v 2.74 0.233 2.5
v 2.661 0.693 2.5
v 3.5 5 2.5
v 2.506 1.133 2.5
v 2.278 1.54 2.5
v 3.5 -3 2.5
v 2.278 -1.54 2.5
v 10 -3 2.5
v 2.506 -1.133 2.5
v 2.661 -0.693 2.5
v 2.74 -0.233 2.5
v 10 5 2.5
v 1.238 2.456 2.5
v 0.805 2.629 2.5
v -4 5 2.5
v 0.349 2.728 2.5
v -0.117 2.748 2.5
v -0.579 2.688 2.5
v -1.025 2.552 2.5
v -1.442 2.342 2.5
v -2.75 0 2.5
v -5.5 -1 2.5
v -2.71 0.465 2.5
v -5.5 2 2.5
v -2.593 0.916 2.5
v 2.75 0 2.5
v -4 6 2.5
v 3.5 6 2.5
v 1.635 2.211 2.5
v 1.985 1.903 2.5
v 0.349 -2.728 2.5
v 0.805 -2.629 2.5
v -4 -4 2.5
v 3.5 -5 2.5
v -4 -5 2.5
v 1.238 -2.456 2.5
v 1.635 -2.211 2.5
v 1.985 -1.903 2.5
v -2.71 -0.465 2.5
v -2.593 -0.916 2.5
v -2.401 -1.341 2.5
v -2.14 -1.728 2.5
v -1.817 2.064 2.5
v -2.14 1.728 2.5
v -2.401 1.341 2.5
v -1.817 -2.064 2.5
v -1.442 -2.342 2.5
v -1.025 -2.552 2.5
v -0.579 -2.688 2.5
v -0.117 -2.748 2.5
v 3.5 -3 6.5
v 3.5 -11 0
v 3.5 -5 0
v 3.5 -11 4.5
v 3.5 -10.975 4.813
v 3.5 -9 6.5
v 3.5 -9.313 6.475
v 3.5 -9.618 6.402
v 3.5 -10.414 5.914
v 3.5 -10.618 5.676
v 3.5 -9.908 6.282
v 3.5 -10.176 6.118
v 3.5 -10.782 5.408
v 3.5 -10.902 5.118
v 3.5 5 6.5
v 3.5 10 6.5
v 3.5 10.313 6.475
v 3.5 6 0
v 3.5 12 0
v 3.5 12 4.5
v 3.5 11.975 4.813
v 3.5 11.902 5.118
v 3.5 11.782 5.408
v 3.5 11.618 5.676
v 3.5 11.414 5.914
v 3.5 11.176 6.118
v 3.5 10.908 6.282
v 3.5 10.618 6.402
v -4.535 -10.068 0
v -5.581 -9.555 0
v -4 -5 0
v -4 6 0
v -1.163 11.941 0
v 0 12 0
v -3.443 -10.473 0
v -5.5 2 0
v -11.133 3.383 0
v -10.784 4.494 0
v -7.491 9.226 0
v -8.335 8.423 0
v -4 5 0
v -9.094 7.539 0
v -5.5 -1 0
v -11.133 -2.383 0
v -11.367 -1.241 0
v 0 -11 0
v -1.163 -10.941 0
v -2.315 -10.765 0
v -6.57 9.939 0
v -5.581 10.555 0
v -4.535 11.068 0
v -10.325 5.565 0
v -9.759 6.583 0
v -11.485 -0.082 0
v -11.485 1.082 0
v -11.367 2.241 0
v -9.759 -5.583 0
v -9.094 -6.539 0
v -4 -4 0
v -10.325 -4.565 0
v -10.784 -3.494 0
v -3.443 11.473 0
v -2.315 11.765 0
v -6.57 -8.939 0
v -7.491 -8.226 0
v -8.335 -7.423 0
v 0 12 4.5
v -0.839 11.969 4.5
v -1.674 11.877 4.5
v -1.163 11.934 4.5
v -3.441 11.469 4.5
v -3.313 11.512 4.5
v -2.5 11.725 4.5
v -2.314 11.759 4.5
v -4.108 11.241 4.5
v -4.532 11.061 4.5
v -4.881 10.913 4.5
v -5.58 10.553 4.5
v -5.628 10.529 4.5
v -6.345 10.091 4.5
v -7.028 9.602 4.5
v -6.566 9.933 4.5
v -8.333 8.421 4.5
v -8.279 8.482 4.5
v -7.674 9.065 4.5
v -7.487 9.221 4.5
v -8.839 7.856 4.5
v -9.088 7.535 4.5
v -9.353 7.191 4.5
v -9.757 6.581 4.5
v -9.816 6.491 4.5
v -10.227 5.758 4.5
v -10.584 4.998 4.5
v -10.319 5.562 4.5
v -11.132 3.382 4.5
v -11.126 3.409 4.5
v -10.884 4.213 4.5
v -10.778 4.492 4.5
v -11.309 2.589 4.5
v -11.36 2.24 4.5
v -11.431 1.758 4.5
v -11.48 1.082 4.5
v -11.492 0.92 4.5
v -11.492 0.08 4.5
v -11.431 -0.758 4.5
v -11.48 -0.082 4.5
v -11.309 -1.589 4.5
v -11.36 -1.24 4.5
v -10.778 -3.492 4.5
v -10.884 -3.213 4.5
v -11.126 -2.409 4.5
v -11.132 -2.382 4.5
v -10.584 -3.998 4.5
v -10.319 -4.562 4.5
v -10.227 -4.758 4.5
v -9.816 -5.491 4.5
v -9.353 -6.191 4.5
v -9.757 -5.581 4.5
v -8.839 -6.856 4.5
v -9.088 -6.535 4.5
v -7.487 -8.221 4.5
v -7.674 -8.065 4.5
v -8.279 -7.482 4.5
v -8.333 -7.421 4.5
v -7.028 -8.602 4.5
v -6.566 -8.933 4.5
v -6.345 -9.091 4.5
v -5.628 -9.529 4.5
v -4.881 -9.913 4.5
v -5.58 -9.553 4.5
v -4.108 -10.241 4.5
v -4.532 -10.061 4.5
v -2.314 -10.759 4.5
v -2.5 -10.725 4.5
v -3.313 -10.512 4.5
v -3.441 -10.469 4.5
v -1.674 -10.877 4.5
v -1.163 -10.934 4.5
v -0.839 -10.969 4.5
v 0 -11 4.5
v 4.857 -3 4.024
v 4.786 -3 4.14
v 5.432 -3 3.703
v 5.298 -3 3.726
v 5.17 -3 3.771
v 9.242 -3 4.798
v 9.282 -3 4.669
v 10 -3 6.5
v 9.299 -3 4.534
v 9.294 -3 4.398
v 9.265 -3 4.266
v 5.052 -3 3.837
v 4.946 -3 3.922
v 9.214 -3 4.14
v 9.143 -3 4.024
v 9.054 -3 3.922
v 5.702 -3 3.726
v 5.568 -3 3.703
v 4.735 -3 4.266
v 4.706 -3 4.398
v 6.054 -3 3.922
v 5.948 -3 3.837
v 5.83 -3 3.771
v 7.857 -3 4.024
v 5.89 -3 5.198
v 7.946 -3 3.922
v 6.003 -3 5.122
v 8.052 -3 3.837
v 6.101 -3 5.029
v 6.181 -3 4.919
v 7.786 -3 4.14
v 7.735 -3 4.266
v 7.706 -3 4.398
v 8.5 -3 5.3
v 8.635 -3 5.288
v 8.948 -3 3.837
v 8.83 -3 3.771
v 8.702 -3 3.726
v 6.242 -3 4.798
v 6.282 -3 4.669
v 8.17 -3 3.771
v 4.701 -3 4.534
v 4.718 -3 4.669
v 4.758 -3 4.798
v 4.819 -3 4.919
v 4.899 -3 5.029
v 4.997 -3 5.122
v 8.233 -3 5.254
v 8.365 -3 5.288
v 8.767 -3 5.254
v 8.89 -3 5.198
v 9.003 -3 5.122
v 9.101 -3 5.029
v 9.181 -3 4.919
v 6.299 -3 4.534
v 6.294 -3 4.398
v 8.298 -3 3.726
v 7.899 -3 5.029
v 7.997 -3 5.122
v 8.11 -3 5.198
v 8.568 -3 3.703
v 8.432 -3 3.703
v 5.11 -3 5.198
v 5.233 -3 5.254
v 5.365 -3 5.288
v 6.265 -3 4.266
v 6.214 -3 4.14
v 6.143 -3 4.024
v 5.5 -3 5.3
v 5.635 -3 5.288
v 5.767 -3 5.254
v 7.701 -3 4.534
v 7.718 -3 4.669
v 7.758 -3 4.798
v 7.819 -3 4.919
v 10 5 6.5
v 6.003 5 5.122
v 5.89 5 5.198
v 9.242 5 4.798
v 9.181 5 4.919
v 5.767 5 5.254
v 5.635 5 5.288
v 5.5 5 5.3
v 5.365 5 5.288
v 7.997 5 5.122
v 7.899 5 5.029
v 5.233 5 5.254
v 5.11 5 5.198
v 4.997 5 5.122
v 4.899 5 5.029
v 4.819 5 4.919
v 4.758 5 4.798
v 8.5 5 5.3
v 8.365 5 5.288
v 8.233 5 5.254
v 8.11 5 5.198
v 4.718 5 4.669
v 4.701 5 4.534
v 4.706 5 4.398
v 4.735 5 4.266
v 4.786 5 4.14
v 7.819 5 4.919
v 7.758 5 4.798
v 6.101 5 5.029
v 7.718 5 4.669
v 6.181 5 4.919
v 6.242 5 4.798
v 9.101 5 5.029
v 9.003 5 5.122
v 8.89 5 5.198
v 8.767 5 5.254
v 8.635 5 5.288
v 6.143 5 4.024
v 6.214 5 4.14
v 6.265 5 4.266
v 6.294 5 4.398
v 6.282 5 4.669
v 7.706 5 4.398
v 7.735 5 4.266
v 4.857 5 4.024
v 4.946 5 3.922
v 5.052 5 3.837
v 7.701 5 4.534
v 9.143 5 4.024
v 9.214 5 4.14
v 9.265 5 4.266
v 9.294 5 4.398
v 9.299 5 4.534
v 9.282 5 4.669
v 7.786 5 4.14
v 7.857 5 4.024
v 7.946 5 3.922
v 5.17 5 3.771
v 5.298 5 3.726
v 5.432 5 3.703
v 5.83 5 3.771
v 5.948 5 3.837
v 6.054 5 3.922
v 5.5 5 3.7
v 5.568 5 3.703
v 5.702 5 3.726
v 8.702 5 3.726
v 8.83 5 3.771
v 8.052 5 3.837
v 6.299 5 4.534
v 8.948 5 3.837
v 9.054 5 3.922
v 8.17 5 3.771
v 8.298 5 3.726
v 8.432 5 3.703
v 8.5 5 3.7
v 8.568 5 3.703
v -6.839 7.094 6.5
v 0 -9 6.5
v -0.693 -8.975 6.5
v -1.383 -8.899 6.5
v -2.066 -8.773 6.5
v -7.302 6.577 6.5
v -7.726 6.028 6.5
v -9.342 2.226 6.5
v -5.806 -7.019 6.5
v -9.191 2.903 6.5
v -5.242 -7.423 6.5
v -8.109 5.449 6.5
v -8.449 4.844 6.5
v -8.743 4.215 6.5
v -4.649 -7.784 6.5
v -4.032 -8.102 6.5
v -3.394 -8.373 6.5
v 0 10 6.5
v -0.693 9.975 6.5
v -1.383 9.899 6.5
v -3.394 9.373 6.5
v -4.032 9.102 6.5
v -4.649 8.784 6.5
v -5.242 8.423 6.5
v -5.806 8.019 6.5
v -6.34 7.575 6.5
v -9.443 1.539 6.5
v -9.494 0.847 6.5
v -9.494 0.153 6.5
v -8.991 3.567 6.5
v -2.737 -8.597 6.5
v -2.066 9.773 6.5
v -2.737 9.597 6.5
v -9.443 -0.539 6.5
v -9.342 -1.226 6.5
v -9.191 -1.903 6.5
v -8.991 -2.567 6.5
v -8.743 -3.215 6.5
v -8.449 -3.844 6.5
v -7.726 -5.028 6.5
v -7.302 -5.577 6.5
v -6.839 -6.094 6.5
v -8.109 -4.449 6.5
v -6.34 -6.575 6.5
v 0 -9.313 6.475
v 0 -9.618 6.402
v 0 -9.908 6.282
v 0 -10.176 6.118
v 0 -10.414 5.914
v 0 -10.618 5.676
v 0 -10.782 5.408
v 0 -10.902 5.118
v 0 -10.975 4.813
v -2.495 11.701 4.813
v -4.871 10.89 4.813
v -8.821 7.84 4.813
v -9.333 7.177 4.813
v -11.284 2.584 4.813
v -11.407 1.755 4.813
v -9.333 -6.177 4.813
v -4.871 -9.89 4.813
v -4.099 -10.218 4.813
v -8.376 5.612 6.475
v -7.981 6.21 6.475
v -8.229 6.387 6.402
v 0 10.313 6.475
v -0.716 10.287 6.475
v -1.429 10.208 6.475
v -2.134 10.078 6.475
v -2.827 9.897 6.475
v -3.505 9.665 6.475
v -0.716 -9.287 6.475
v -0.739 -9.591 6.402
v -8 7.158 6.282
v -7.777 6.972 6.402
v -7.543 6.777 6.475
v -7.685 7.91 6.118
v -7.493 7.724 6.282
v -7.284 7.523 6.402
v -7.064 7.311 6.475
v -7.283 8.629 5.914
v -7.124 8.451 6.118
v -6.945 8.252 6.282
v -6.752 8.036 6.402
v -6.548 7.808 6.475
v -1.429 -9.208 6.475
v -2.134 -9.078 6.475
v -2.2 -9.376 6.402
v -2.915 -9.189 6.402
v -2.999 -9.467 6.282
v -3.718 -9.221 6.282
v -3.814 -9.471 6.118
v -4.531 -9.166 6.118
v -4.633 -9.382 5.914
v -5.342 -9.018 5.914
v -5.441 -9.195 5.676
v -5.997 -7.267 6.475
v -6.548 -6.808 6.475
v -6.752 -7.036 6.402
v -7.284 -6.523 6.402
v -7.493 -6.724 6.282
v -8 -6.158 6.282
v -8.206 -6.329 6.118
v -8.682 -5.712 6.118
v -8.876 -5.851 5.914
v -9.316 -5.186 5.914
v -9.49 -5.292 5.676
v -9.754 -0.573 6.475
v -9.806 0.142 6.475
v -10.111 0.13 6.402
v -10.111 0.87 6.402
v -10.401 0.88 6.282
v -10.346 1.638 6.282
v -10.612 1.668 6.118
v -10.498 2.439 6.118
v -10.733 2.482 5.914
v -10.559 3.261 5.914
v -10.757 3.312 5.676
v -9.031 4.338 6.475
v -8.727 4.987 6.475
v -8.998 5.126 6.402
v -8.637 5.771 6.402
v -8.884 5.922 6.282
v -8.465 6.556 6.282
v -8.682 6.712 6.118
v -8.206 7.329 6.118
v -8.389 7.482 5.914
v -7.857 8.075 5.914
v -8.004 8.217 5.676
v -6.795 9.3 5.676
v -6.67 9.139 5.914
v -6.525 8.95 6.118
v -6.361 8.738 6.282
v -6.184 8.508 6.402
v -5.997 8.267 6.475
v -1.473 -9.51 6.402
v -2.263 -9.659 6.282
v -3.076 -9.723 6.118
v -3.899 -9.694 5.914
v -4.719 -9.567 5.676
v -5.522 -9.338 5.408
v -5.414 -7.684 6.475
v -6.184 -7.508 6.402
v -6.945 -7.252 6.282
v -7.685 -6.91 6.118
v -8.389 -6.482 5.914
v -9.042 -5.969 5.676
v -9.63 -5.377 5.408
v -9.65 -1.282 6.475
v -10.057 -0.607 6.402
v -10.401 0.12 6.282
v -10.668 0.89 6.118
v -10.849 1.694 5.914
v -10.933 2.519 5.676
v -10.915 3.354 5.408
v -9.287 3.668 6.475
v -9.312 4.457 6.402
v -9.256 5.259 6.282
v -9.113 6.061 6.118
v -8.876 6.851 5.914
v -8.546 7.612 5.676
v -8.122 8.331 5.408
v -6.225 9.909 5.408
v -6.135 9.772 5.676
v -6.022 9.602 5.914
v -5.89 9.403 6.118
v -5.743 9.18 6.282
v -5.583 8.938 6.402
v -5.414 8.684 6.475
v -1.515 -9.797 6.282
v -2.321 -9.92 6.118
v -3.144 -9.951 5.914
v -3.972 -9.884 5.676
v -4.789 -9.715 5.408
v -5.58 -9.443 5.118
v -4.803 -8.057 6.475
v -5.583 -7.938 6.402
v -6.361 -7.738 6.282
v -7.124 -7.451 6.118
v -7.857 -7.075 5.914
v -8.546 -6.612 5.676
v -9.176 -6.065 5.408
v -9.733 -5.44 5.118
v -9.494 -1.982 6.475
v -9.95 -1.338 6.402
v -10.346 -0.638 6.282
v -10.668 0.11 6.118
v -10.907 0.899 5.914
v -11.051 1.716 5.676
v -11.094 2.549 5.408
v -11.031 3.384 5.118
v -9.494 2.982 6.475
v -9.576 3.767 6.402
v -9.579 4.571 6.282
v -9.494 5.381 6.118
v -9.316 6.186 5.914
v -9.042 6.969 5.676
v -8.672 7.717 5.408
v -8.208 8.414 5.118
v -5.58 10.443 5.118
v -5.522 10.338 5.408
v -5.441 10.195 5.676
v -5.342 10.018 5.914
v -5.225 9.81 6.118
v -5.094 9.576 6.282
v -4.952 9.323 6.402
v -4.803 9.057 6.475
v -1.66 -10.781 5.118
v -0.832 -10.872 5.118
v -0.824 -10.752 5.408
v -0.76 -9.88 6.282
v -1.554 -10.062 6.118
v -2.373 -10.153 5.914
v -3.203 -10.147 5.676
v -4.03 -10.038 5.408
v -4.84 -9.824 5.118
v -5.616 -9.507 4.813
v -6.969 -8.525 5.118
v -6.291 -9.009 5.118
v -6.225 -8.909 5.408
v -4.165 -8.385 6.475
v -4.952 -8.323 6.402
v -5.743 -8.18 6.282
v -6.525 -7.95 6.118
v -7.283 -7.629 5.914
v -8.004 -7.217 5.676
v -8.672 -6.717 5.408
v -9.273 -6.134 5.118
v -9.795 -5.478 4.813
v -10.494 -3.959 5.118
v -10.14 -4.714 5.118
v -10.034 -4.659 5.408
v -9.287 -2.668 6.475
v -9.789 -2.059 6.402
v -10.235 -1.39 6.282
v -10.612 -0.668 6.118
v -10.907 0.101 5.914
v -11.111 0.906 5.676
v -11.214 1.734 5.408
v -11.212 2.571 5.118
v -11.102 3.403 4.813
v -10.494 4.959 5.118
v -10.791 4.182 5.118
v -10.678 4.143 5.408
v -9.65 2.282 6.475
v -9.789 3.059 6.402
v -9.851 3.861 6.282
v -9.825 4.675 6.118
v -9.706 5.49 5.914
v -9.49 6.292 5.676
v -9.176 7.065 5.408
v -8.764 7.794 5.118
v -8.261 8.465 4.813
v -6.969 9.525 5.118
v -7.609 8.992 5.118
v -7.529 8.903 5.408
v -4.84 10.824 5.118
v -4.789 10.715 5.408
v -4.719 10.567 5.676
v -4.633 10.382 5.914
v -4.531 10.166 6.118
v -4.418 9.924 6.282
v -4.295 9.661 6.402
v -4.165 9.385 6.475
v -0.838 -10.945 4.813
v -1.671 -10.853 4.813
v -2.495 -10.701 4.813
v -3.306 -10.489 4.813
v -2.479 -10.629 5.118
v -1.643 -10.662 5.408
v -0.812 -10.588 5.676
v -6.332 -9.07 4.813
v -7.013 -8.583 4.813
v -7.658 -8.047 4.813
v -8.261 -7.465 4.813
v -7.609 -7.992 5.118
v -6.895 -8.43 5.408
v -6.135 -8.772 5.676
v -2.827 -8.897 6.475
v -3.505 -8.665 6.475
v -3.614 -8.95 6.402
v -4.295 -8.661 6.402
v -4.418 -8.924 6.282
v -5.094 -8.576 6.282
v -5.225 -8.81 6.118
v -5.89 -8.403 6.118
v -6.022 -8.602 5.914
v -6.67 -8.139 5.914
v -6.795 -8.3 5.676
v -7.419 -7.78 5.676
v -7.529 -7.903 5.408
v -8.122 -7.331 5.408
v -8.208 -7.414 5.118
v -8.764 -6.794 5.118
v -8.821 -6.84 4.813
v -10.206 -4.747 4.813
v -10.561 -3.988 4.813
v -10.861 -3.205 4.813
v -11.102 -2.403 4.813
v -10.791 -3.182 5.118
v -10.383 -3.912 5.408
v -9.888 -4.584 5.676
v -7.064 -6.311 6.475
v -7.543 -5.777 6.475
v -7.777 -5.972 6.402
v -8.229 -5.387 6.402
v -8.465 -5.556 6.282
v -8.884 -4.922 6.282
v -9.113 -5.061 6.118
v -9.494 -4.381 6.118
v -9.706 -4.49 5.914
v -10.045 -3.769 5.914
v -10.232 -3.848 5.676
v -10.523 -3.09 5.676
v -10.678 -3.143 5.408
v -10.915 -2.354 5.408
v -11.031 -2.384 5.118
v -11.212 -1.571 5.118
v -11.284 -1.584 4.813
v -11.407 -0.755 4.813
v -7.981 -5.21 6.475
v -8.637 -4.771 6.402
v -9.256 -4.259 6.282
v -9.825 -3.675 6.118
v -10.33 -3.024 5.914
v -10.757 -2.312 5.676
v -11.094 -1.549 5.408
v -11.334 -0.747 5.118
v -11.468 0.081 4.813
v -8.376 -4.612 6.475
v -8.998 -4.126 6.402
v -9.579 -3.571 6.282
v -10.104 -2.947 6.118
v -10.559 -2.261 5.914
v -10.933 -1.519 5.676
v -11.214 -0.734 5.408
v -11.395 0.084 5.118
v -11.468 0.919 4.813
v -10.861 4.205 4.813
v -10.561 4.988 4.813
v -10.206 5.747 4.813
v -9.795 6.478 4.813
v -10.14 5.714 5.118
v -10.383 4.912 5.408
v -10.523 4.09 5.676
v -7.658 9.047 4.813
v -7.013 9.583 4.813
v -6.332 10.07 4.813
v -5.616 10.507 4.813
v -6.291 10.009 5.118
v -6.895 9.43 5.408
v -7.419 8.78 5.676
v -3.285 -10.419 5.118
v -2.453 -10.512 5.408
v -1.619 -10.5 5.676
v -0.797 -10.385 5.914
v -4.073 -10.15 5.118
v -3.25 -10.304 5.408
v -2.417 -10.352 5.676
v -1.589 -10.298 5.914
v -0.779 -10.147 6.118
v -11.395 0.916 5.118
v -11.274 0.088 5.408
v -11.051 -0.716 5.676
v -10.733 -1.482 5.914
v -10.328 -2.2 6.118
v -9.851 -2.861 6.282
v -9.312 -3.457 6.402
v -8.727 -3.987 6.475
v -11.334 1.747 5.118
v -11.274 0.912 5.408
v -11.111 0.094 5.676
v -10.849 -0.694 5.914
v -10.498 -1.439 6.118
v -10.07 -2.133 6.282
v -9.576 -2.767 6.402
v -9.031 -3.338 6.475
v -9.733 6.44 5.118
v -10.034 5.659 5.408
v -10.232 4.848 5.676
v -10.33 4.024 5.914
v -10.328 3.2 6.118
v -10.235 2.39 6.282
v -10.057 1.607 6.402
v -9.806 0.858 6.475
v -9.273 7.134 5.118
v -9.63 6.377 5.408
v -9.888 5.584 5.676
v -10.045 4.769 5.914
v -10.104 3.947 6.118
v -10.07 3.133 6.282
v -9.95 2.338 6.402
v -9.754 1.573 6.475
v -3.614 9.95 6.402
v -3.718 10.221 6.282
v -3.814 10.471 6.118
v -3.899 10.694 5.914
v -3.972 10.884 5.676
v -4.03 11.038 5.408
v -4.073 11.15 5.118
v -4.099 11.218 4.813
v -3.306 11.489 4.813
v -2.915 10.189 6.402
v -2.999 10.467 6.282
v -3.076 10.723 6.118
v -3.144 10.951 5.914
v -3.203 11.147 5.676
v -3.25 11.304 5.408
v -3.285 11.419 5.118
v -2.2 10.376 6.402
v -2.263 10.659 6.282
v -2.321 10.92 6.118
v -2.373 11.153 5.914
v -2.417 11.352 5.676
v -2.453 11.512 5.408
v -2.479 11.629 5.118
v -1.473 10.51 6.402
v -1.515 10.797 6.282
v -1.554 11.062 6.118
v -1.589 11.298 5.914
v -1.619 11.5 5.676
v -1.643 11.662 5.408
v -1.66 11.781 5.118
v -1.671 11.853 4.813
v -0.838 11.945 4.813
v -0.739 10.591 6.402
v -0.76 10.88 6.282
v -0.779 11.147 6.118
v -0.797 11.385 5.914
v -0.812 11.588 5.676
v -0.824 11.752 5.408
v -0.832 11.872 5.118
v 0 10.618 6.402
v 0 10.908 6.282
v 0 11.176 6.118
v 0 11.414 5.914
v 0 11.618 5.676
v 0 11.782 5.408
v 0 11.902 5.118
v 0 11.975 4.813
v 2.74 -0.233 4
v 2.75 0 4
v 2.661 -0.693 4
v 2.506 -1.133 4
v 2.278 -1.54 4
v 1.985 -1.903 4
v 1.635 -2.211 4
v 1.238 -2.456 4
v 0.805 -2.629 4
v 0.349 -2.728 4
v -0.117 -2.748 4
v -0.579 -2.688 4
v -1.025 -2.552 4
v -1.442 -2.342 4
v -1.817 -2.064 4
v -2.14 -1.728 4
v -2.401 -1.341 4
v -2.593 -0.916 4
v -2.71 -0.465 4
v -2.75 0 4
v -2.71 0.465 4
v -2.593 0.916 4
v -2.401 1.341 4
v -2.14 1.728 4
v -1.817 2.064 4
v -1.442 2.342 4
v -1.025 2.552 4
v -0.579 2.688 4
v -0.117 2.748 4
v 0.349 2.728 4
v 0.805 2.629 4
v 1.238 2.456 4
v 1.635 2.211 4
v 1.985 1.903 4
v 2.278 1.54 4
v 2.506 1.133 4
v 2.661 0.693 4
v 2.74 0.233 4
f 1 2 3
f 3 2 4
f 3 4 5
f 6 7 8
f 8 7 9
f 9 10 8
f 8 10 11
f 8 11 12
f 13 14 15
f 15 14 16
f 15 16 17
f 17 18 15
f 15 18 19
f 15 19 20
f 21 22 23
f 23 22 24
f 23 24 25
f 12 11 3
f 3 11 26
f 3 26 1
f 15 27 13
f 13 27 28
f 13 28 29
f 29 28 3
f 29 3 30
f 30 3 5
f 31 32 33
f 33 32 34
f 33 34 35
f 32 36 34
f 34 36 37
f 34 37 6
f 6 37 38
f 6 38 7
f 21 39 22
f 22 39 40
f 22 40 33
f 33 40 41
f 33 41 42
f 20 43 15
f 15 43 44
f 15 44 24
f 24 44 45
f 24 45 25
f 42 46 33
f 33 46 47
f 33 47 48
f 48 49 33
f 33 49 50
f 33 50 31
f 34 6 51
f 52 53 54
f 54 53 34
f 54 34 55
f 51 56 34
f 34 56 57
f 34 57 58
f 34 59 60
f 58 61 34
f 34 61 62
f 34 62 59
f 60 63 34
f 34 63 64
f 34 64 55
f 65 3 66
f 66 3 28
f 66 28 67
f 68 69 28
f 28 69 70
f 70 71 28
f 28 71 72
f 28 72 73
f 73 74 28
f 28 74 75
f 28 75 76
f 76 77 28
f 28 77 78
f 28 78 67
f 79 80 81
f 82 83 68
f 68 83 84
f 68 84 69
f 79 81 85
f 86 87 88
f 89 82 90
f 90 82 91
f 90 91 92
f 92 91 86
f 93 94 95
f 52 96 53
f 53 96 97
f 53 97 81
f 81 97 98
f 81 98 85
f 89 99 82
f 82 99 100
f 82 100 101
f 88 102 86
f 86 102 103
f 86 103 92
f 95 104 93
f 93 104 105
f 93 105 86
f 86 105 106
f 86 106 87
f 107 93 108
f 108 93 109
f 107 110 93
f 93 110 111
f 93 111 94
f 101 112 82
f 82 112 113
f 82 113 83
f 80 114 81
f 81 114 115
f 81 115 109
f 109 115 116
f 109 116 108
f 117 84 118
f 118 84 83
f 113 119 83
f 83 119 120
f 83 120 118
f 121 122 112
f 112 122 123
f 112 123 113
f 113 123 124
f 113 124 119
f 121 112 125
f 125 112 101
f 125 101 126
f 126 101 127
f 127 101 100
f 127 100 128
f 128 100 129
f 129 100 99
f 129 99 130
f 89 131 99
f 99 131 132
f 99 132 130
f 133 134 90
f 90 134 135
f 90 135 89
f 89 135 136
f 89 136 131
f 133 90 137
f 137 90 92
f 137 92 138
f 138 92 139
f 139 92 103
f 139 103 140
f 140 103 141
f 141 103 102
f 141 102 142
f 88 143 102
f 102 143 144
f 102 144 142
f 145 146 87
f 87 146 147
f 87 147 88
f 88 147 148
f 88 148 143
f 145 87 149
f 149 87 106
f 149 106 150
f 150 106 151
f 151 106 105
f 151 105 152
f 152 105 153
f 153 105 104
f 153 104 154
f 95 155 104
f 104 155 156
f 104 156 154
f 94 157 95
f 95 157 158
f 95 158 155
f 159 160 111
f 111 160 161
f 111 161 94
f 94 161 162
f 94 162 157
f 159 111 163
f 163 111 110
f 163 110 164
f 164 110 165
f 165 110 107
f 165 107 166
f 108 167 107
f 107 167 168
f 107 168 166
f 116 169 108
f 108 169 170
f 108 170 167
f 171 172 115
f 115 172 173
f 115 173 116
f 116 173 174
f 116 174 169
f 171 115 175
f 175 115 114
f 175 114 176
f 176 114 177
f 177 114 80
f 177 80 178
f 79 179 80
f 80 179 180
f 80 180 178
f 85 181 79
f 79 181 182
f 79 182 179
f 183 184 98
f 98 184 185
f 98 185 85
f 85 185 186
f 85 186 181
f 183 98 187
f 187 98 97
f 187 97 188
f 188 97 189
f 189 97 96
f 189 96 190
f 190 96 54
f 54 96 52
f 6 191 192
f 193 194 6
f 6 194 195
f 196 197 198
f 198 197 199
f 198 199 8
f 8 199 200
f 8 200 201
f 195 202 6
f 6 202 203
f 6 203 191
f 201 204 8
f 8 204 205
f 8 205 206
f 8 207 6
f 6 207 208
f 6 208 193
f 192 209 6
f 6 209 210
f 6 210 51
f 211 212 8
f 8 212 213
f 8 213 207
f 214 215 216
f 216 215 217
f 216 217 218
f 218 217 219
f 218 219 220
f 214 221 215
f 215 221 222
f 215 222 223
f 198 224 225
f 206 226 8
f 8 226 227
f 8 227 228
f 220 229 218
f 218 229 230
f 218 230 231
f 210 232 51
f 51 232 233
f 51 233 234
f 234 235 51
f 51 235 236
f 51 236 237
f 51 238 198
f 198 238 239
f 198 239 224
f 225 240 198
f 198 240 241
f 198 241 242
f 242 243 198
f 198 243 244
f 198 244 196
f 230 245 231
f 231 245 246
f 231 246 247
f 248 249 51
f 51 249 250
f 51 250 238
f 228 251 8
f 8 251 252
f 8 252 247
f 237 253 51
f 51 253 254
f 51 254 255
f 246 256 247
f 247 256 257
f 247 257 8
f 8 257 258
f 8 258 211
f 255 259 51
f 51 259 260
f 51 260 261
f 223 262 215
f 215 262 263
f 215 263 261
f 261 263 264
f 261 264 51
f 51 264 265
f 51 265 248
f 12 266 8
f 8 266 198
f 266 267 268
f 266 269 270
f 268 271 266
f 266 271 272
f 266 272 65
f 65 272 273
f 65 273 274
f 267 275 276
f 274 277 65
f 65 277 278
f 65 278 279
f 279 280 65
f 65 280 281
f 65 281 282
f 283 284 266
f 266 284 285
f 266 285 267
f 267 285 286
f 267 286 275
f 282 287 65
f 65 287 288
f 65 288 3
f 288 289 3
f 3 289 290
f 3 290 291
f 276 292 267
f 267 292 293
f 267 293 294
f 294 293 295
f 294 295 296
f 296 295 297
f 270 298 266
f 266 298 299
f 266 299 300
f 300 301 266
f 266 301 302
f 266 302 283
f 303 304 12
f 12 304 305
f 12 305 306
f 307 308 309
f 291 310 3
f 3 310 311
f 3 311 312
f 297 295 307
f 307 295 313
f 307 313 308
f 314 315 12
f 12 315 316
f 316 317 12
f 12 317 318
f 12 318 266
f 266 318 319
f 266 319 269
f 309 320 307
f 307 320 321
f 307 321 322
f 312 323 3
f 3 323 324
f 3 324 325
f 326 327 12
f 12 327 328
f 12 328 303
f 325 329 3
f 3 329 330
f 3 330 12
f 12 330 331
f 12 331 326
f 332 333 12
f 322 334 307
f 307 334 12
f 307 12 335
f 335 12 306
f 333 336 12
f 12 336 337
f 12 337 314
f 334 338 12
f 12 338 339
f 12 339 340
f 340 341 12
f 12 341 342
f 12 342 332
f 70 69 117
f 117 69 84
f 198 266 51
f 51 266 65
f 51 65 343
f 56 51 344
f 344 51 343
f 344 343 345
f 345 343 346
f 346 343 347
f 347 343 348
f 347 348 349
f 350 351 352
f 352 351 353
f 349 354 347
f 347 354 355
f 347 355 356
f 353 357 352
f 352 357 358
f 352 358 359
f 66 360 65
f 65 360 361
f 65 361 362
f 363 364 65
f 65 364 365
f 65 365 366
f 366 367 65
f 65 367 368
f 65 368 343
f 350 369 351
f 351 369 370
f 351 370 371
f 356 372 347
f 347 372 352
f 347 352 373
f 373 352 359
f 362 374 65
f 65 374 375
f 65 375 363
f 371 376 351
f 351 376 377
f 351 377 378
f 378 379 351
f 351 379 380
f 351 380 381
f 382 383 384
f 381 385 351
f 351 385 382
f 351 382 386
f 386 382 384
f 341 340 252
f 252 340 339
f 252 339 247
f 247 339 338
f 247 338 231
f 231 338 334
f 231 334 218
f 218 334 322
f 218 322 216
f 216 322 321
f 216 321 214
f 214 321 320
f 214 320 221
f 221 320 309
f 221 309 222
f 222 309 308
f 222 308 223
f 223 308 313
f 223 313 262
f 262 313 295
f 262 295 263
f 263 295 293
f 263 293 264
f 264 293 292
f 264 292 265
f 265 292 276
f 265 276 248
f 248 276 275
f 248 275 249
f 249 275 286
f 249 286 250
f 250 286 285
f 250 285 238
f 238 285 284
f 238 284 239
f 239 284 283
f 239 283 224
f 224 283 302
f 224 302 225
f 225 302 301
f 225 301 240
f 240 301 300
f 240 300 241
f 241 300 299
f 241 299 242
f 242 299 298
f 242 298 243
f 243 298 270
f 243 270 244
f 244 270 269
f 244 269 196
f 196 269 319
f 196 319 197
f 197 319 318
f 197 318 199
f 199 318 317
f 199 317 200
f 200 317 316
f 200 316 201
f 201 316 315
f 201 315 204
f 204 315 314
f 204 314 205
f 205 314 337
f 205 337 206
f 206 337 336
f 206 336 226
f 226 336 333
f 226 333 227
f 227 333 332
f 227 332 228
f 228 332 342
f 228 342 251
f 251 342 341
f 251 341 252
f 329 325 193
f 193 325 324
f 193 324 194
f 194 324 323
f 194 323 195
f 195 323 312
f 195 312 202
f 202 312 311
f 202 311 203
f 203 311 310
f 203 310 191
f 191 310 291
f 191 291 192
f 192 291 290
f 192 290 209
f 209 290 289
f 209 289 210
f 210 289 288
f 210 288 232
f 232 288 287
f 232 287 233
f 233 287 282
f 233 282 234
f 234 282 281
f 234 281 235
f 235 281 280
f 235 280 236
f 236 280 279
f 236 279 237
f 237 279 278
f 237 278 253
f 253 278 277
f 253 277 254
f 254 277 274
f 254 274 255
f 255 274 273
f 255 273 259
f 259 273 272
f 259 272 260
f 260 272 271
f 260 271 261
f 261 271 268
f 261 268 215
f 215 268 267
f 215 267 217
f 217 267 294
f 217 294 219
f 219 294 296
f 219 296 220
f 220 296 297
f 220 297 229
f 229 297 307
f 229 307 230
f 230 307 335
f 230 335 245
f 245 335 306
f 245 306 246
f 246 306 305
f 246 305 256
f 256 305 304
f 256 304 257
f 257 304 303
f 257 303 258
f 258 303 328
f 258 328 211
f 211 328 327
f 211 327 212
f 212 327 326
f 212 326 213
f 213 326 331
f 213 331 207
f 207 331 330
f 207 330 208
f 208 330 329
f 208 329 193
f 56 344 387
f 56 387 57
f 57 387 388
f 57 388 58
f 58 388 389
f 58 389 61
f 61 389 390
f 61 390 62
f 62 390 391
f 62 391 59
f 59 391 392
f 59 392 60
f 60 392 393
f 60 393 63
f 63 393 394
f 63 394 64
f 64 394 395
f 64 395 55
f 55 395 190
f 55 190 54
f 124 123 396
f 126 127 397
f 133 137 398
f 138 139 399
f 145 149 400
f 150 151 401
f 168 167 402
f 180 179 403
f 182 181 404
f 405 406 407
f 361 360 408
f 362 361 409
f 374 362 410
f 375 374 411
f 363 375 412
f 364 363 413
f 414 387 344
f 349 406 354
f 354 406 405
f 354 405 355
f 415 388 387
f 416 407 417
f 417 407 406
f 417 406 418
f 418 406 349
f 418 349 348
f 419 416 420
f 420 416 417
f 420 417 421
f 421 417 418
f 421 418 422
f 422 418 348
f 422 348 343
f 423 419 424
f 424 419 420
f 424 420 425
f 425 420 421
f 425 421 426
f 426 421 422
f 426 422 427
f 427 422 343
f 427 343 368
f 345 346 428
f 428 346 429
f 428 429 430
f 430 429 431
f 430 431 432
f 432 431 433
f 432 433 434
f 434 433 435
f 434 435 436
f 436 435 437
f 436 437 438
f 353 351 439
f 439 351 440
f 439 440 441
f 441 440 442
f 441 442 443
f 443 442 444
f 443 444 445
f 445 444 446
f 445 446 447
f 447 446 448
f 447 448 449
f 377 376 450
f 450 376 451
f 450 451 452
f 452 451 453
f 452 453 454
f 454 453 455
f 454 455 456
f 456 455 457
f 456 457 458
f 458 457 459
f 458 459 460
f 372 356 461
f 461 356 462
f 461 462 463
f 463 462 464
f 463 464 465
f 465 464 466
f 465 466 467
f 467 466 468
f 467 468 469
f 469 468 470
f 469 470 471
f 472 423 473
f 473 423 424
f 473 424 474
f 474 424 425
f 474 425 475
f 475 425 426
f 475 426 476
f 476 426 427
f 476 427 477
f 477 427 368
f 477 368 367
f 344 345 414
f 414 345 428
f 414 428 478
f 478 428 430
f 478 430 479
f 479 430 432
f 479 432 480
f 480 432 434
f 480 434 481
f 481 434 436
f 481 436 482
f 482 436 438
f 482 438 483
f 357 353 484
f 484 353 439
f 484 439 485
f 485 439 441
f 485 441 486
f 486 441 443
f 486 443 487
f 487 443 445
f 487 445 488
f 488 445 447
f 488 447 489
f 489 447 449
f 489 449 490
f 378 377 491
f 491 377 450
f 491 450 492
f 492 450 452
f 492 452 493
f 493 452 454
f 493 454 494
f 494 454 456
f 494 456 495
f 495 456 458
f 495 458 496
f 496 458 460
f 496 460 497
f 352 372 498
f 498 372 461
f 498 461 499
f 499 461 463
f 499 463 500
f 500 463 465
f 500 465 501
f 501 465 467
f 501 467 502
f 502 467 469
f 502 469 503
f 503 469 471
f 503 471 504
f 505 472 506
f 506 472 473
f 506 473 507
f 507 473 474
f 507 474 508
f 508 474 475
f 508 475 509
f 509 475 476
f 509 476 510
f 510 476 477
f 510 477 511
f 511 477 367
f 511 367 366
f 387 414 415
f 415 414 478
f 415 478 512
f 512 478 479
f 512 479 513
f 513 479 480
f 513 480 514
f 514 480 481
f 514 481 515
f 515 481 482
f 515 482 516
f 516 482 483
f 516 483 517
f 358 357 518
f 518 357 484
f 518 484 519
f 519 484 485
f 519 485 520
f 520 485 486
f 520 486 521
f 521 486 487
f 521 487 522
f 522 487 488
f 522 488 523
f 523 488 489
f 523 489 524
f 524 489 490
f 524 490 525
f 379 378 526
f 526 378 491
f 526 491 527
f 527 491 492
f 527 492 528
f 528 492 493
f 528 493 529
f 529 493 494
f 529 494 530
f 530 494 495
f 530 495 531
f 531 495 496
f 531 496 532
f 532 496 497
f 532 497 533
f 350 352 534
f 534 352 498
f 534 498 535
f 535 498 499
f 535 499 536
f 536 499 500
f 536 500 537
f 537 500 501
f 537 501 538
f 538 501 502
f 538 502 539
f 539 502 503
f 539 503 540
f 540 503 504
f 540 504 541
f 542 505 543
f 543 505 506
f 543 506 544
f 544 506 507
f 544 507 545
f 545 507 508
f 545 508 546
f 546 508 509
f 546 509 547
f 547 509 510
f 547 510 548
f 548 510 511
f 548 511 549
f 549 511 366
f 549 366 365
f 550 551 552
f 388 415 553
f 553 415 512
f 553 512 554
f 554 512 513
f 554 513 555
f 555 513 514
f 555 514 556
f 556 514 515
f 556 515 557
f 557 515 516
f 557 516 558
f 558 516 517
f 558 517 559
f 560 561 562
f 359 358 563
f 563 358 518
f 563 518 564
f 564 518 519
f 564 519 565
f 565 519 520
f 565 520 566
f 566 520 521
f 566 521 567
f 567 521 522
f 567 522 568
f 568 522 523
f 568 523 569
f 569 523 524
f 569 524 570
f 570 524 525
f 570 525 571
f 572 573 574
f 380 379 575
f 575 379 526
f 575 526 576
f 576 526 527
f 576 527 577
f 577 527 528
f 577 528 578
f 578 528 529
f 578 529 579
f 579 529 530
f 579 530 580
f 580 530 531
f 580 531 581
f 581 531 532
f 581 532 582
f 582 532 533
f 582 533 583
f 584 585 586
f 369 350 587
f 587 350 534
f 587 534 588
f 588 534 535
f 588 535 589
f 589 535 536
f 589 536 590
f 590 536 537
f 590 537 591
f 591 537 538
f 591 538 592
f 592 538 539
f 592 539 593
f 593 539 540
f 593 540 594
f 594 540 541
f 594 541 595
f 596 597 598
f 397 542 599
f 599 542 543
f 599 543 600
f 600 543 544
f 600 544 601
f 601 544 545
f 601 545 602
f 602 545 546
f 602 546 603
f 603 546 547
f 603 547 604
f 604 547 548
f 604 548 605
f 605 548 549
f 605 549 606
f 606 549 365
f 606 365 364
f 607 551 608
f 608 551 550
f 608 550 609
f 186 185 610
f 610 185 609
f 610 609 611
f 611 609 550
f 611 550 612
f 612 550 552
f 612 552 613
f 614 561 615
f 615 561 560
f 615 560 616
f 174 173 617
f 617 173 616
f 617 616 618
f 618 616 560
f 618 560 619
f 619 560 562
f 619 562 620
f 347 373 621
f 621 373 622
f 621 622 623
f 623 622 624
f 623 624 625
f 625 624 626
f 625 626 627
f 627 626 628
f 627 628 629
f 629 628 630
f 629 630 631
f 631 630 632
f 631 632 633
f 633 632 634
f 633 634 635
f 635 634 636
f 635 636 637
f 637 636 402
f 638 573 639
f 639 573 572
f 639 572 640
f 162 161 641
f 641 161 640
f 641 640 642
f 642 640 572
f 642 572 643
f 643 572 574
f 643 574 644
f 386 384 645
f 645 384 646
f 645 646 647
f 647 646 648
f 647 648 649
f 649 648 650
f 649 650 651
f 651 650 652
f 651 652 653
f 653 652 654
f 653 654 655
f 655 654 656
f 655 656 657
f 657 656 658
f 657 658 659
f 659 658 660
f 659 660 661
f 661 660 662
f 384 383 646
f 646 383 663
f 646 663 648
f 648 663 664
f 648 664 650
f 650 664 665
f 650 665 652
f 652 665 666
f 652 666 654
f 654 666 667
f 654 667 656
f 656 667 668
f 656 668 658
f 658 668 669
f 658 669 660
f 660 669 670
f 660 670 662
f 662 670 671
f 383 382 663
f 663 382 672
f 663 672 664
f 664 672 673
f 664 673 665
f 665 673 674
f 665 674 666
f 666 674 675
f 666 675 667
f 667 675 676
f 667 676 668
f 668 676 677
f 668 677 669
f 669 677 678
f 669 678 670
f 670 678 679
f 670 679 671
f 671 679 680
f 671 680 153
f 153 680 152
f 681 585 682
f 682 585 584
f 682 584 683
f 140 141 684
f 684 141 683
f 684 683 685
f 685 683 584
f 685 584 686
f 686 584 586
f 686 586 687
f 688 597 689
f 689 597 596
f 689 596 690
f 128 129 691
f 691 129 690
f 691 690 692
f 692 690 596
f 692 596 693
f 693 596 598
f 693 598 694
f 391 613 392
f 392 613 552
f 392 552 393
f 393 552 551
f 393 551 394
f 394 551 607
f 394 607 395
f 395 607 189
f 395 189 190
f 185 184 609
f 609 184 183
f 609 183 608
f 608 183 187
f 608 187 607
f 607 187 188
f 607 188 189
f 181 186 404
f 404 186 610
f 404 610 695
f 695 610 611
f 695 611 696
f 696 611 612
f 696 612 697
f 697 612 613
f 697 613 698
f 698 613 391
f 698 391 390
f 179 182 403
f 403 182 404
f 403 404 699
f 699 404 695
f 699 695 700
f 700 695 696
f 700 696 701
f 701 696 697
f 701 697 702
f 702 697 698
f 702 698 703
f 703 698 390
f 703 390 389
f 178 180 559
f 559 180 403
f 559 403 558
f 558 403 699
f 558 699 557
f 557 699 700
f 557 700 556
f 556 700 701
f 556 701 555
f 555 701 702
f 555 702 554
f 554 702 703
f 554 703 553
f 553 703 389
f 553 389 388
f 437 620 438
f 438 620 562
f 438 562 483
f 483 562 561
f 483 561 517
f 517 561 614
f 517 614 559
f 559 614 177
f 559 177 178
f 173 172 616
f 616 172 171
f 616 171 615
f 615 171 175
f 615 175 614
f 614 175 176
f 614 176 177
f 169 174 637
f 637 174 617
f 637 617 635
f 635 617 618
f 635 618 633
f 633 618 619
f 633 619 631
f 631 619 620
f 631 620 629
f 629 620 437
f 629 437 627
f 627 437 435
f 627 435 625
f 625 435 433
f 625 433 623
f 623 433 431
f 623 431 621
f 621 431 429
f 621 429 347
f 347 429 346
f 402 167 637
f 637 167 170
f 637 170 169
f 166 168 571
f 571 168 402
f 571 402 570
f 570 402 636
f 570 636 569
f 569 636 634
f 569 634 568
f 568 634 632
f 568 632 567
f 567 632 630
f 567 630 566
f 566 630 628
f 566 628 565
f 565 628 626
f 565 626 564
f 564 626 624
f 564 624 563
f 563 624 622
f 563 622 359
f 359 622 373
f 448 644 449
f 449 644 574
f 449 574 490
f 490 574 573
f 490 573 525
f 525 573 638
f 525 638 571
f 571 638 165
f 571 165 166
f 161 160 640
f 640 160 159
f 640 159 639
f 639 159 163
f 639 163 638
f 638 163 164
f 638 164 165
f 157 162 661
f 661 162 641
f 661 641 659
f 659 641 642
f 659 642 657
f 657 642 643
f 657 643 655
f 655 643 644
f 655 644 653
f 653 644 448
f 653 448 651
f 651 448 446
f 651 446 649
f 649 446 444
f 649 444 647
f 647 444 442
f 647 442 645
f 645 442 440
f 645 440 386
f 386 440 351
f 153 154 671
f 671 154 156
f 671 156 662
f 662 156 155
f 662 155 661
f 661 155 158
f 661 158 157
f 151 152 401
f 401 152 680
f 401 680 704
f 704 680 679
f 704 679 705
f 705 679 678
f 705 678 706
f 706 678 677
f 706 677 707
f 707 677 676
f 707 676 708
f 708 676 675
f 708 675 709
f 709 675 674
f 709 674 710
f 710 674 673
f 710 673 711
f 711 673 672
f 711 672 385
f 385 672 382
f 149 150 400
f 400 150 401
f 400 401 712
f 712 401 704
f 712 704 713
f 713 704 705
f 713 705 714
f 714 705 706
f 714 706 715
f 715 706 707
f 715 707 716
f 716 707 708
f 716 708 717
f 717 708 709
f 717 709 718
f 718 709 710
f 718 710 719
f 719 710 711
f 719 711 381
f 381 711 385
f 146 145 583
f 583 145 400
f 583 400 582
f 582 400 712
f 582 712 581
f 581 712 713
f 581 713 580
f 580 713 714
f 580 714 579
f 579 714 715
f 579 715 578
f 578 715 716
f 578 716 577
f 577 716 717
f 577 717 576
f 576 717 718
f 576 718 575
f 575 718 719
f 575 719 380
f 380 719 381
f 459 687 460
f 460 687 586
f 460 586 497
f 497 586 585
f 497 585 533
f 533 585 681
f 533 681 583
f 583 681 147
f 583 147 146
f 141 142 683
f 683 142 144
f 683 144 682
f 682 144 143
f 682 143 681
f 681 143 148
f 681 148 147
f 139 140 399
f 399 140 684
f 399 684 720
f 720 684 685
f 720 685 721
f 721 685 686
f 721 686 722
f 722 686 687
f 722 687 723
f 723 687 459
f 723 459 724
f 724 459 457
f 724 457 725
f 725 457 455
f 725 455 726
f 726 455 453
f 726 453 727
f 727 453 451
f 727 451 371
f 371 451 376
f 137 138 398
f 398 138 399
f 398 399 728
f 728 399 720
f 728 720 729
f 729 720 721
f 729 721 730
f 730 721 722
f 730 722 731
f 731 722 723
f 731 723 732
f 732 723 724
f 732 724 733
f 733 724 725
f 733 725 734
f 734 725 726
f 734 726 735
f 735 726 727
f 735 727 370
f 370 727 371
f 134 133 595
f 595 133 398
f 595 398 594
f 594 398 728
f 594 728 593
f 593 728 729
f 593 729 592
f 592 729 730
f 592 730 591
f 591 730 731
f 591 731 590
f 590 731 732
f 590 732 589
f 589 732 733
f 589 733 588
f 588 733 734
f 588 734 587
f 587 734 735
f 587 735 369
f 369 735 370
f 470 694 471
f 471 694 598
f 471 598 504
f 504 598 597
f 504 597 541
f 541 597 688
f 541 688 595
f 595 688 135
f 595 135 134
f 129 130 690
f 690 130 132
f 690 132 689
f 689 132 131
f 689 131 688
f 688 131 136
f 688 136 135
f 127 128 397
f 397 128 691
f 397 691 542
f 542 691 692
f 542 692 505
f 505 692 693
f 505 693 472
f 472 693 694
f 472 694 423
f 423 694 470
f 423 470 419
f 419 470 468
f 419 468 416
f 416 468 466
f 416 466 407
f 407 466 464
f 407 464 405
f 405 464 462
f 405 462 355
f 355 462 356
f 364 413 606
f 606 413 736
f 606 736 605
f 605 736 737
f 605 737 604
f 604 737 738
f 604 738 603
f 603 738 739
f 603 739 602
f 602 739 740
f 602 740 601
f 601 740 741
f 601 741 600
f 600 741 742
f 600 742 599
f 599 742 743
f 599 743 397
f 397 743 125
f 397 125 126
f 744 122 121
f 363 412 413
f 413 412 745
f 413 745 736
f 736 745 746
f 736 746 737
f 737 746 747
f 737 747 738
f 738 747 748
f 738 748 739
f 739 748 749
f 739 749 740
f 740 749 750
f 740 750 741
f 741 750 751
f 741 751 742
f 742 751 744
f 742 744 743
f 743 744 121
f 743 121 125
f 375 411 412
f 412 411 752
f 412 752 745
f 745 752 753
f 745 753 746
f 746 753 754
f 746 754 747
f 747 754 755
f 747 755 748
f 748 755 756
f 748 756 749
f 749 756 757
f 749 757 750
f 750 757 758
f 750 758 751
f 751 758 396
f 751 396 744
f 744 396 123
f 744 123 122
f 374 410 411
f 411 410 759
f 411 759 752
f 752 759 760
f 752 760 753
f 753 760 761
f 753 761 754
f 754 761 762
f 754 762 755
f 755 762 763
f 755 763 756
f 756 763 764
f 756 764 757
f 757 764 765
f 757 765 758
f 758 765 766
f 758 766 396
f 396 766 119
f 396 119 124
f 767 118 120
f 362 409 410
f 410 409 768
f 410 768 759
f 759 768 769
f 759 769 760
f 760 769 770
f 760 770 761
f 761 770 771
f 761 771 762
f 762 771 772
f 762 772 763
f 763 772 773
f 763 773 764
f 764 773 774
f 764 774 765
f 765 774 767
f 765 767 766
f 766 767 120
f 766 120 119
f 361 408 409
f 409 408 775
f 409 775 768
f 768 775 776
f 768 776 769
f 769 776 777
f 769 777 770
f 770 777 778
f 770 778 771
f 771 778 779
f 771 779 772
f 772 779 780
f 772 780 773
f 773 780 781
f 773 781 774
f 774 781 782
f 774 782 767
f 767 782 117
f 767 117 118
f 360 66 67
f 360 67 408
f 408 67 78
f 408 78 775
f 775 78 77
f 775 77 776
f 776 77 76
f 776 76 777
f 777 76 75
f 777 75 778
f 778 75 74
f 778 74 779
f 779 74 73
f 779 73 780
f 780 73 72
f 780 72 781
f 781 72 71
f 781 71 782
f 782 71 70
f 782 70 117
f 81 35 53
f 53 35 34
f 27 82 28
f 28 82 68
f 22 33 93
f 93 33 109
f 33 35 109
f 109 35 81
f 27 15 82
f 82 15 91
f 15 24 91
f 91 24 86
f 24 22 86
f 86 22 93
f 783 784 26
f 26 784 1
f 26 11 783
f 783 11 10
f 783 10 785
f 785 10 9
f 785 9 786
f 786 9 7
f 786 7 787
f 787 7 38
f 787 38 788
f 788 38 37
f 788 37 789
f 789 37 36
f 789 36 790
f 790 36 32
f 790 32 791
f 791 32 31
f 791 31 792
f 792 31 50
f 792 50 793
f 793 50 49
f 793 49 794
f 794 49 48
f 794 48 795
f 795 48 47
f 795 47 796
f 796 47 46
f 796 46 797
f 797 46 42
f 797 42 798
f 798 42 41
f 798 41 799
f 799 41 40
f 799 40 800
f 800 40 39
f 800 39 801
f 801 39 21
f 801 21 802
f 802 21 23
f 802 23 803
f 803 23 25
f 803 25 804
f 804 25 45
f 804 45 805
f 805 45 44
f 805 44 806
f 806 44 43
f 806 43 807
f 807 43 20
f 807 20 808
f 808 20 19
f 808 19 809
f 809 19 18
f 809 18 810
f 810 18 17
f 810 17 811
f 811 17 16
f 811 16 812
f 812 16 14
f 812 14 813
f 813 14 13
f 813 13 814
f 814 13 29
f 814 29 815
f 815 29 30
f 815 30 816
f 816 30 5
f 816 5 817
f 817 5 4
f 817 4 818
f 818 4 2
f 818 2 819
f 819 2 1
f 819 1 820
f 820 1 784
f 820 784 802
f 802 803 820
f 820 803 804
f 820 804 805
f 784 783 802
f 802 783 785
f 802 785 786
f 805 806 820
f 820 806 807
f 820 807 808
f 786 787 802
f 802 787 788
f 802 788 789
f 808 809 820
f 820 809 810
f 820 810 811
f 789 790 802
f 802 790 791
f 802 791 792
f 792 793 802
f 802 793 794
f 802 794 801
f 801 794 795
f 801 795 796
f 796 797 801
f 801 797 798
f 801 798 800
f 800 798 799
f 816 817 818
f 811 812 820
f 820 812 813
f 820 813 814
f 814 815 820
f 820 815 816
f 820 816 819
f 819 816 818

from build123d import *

# Parameters (mm, degrees)
BOSS_EXTRUDE1_DEPTH = 6.5
CUT_EXTRUDE1_START  = 11
SKETCH2_R           = 0.8
CUT_EXTRUDE1_DEPTH  = 23
FILLET1_R           = 2
POT_INSERT_DEPTH    = 2.5
POT_START           = 2.5
SKETCH6_R           = 2.75
POT_HOLE_DEPTH      = 1.5


with BuildPart() as part:
    # Sketch1 → Boss-Extrude1 (new body)
    with BuildSketch(Plane.XY):
        with BuildLine():
            Line((3.5, 12), (3.5, 5))
            Line((3.5, 5), (10, 5))
            Line((10, 5), (10, -3))
            Line((10, -3), (3.5, -3))
            Line((3.5, -3), (3.5, -11))
            Line((3.5, -11), (0, -11))
            ThreePointArc((0, -11), (-11.5, 0.5), (0, 12))
            Line((0, 12), (3.5, 12))
        make_face()
    extrude(amount=BOSS_EXTRUDE1_DEPTH)

    # Sketch2 → Cut-Extrude1 (cut, through all)
    with BuildSketch(Plane(origin=(0, 0, 0), x_dir=(1, 0, 0), z_dir=(0, 1, 0)).offset(CUT_EXTRUDE1_START)):
        with Locations((8.5, -4.5)):
            Circle(SKETCH2_R)
        with Locations((5.5, -4.5)):
            Circle(SKETCH2_R)
    extrude(amount=-CUT_EXTRUDE1_DEPTH, mode=Mode.SUBTRACT)

    # Fillet1
    fillet1_edges = [part.edges().sort_by_distance(p)[0] for p in [
        (1.75, 12, 6.5),
        (-11.5, 0.5, 6.5),
        (1.75, -11, 6.5),
    ]]
    fillet(fillet1_edges, radius=FILLET1_R)

    # Sketch5 → Pot Insert (cut)
    with BuildSketch(Plane.XY):
        Polygon((-5.5, -1), (-4, -4), (-4, -5), (0, -5), (4.25, -5), (4.25, -4), (10, -4), (10, 0.5), (10, 5), (4.25, 5), (4.25, 6), (0, 6), (-4, 6), (-4, 5), (-5.5, 2), (-5.5, 0.5), align=None)
    extrude(amount=POT_INSERT_DEPTH, mode=Mode.SUBTRACT)

    # Sketch6 → Pot Hole (cut)
    with BuildSketch(Plane.XY.offset(POT_START)):
        Circle(SKETCH6_R)
    extrude(amount=POT_HOLE_DEPTH, mode=Mode.SUBTRACT)


solid = part.part
